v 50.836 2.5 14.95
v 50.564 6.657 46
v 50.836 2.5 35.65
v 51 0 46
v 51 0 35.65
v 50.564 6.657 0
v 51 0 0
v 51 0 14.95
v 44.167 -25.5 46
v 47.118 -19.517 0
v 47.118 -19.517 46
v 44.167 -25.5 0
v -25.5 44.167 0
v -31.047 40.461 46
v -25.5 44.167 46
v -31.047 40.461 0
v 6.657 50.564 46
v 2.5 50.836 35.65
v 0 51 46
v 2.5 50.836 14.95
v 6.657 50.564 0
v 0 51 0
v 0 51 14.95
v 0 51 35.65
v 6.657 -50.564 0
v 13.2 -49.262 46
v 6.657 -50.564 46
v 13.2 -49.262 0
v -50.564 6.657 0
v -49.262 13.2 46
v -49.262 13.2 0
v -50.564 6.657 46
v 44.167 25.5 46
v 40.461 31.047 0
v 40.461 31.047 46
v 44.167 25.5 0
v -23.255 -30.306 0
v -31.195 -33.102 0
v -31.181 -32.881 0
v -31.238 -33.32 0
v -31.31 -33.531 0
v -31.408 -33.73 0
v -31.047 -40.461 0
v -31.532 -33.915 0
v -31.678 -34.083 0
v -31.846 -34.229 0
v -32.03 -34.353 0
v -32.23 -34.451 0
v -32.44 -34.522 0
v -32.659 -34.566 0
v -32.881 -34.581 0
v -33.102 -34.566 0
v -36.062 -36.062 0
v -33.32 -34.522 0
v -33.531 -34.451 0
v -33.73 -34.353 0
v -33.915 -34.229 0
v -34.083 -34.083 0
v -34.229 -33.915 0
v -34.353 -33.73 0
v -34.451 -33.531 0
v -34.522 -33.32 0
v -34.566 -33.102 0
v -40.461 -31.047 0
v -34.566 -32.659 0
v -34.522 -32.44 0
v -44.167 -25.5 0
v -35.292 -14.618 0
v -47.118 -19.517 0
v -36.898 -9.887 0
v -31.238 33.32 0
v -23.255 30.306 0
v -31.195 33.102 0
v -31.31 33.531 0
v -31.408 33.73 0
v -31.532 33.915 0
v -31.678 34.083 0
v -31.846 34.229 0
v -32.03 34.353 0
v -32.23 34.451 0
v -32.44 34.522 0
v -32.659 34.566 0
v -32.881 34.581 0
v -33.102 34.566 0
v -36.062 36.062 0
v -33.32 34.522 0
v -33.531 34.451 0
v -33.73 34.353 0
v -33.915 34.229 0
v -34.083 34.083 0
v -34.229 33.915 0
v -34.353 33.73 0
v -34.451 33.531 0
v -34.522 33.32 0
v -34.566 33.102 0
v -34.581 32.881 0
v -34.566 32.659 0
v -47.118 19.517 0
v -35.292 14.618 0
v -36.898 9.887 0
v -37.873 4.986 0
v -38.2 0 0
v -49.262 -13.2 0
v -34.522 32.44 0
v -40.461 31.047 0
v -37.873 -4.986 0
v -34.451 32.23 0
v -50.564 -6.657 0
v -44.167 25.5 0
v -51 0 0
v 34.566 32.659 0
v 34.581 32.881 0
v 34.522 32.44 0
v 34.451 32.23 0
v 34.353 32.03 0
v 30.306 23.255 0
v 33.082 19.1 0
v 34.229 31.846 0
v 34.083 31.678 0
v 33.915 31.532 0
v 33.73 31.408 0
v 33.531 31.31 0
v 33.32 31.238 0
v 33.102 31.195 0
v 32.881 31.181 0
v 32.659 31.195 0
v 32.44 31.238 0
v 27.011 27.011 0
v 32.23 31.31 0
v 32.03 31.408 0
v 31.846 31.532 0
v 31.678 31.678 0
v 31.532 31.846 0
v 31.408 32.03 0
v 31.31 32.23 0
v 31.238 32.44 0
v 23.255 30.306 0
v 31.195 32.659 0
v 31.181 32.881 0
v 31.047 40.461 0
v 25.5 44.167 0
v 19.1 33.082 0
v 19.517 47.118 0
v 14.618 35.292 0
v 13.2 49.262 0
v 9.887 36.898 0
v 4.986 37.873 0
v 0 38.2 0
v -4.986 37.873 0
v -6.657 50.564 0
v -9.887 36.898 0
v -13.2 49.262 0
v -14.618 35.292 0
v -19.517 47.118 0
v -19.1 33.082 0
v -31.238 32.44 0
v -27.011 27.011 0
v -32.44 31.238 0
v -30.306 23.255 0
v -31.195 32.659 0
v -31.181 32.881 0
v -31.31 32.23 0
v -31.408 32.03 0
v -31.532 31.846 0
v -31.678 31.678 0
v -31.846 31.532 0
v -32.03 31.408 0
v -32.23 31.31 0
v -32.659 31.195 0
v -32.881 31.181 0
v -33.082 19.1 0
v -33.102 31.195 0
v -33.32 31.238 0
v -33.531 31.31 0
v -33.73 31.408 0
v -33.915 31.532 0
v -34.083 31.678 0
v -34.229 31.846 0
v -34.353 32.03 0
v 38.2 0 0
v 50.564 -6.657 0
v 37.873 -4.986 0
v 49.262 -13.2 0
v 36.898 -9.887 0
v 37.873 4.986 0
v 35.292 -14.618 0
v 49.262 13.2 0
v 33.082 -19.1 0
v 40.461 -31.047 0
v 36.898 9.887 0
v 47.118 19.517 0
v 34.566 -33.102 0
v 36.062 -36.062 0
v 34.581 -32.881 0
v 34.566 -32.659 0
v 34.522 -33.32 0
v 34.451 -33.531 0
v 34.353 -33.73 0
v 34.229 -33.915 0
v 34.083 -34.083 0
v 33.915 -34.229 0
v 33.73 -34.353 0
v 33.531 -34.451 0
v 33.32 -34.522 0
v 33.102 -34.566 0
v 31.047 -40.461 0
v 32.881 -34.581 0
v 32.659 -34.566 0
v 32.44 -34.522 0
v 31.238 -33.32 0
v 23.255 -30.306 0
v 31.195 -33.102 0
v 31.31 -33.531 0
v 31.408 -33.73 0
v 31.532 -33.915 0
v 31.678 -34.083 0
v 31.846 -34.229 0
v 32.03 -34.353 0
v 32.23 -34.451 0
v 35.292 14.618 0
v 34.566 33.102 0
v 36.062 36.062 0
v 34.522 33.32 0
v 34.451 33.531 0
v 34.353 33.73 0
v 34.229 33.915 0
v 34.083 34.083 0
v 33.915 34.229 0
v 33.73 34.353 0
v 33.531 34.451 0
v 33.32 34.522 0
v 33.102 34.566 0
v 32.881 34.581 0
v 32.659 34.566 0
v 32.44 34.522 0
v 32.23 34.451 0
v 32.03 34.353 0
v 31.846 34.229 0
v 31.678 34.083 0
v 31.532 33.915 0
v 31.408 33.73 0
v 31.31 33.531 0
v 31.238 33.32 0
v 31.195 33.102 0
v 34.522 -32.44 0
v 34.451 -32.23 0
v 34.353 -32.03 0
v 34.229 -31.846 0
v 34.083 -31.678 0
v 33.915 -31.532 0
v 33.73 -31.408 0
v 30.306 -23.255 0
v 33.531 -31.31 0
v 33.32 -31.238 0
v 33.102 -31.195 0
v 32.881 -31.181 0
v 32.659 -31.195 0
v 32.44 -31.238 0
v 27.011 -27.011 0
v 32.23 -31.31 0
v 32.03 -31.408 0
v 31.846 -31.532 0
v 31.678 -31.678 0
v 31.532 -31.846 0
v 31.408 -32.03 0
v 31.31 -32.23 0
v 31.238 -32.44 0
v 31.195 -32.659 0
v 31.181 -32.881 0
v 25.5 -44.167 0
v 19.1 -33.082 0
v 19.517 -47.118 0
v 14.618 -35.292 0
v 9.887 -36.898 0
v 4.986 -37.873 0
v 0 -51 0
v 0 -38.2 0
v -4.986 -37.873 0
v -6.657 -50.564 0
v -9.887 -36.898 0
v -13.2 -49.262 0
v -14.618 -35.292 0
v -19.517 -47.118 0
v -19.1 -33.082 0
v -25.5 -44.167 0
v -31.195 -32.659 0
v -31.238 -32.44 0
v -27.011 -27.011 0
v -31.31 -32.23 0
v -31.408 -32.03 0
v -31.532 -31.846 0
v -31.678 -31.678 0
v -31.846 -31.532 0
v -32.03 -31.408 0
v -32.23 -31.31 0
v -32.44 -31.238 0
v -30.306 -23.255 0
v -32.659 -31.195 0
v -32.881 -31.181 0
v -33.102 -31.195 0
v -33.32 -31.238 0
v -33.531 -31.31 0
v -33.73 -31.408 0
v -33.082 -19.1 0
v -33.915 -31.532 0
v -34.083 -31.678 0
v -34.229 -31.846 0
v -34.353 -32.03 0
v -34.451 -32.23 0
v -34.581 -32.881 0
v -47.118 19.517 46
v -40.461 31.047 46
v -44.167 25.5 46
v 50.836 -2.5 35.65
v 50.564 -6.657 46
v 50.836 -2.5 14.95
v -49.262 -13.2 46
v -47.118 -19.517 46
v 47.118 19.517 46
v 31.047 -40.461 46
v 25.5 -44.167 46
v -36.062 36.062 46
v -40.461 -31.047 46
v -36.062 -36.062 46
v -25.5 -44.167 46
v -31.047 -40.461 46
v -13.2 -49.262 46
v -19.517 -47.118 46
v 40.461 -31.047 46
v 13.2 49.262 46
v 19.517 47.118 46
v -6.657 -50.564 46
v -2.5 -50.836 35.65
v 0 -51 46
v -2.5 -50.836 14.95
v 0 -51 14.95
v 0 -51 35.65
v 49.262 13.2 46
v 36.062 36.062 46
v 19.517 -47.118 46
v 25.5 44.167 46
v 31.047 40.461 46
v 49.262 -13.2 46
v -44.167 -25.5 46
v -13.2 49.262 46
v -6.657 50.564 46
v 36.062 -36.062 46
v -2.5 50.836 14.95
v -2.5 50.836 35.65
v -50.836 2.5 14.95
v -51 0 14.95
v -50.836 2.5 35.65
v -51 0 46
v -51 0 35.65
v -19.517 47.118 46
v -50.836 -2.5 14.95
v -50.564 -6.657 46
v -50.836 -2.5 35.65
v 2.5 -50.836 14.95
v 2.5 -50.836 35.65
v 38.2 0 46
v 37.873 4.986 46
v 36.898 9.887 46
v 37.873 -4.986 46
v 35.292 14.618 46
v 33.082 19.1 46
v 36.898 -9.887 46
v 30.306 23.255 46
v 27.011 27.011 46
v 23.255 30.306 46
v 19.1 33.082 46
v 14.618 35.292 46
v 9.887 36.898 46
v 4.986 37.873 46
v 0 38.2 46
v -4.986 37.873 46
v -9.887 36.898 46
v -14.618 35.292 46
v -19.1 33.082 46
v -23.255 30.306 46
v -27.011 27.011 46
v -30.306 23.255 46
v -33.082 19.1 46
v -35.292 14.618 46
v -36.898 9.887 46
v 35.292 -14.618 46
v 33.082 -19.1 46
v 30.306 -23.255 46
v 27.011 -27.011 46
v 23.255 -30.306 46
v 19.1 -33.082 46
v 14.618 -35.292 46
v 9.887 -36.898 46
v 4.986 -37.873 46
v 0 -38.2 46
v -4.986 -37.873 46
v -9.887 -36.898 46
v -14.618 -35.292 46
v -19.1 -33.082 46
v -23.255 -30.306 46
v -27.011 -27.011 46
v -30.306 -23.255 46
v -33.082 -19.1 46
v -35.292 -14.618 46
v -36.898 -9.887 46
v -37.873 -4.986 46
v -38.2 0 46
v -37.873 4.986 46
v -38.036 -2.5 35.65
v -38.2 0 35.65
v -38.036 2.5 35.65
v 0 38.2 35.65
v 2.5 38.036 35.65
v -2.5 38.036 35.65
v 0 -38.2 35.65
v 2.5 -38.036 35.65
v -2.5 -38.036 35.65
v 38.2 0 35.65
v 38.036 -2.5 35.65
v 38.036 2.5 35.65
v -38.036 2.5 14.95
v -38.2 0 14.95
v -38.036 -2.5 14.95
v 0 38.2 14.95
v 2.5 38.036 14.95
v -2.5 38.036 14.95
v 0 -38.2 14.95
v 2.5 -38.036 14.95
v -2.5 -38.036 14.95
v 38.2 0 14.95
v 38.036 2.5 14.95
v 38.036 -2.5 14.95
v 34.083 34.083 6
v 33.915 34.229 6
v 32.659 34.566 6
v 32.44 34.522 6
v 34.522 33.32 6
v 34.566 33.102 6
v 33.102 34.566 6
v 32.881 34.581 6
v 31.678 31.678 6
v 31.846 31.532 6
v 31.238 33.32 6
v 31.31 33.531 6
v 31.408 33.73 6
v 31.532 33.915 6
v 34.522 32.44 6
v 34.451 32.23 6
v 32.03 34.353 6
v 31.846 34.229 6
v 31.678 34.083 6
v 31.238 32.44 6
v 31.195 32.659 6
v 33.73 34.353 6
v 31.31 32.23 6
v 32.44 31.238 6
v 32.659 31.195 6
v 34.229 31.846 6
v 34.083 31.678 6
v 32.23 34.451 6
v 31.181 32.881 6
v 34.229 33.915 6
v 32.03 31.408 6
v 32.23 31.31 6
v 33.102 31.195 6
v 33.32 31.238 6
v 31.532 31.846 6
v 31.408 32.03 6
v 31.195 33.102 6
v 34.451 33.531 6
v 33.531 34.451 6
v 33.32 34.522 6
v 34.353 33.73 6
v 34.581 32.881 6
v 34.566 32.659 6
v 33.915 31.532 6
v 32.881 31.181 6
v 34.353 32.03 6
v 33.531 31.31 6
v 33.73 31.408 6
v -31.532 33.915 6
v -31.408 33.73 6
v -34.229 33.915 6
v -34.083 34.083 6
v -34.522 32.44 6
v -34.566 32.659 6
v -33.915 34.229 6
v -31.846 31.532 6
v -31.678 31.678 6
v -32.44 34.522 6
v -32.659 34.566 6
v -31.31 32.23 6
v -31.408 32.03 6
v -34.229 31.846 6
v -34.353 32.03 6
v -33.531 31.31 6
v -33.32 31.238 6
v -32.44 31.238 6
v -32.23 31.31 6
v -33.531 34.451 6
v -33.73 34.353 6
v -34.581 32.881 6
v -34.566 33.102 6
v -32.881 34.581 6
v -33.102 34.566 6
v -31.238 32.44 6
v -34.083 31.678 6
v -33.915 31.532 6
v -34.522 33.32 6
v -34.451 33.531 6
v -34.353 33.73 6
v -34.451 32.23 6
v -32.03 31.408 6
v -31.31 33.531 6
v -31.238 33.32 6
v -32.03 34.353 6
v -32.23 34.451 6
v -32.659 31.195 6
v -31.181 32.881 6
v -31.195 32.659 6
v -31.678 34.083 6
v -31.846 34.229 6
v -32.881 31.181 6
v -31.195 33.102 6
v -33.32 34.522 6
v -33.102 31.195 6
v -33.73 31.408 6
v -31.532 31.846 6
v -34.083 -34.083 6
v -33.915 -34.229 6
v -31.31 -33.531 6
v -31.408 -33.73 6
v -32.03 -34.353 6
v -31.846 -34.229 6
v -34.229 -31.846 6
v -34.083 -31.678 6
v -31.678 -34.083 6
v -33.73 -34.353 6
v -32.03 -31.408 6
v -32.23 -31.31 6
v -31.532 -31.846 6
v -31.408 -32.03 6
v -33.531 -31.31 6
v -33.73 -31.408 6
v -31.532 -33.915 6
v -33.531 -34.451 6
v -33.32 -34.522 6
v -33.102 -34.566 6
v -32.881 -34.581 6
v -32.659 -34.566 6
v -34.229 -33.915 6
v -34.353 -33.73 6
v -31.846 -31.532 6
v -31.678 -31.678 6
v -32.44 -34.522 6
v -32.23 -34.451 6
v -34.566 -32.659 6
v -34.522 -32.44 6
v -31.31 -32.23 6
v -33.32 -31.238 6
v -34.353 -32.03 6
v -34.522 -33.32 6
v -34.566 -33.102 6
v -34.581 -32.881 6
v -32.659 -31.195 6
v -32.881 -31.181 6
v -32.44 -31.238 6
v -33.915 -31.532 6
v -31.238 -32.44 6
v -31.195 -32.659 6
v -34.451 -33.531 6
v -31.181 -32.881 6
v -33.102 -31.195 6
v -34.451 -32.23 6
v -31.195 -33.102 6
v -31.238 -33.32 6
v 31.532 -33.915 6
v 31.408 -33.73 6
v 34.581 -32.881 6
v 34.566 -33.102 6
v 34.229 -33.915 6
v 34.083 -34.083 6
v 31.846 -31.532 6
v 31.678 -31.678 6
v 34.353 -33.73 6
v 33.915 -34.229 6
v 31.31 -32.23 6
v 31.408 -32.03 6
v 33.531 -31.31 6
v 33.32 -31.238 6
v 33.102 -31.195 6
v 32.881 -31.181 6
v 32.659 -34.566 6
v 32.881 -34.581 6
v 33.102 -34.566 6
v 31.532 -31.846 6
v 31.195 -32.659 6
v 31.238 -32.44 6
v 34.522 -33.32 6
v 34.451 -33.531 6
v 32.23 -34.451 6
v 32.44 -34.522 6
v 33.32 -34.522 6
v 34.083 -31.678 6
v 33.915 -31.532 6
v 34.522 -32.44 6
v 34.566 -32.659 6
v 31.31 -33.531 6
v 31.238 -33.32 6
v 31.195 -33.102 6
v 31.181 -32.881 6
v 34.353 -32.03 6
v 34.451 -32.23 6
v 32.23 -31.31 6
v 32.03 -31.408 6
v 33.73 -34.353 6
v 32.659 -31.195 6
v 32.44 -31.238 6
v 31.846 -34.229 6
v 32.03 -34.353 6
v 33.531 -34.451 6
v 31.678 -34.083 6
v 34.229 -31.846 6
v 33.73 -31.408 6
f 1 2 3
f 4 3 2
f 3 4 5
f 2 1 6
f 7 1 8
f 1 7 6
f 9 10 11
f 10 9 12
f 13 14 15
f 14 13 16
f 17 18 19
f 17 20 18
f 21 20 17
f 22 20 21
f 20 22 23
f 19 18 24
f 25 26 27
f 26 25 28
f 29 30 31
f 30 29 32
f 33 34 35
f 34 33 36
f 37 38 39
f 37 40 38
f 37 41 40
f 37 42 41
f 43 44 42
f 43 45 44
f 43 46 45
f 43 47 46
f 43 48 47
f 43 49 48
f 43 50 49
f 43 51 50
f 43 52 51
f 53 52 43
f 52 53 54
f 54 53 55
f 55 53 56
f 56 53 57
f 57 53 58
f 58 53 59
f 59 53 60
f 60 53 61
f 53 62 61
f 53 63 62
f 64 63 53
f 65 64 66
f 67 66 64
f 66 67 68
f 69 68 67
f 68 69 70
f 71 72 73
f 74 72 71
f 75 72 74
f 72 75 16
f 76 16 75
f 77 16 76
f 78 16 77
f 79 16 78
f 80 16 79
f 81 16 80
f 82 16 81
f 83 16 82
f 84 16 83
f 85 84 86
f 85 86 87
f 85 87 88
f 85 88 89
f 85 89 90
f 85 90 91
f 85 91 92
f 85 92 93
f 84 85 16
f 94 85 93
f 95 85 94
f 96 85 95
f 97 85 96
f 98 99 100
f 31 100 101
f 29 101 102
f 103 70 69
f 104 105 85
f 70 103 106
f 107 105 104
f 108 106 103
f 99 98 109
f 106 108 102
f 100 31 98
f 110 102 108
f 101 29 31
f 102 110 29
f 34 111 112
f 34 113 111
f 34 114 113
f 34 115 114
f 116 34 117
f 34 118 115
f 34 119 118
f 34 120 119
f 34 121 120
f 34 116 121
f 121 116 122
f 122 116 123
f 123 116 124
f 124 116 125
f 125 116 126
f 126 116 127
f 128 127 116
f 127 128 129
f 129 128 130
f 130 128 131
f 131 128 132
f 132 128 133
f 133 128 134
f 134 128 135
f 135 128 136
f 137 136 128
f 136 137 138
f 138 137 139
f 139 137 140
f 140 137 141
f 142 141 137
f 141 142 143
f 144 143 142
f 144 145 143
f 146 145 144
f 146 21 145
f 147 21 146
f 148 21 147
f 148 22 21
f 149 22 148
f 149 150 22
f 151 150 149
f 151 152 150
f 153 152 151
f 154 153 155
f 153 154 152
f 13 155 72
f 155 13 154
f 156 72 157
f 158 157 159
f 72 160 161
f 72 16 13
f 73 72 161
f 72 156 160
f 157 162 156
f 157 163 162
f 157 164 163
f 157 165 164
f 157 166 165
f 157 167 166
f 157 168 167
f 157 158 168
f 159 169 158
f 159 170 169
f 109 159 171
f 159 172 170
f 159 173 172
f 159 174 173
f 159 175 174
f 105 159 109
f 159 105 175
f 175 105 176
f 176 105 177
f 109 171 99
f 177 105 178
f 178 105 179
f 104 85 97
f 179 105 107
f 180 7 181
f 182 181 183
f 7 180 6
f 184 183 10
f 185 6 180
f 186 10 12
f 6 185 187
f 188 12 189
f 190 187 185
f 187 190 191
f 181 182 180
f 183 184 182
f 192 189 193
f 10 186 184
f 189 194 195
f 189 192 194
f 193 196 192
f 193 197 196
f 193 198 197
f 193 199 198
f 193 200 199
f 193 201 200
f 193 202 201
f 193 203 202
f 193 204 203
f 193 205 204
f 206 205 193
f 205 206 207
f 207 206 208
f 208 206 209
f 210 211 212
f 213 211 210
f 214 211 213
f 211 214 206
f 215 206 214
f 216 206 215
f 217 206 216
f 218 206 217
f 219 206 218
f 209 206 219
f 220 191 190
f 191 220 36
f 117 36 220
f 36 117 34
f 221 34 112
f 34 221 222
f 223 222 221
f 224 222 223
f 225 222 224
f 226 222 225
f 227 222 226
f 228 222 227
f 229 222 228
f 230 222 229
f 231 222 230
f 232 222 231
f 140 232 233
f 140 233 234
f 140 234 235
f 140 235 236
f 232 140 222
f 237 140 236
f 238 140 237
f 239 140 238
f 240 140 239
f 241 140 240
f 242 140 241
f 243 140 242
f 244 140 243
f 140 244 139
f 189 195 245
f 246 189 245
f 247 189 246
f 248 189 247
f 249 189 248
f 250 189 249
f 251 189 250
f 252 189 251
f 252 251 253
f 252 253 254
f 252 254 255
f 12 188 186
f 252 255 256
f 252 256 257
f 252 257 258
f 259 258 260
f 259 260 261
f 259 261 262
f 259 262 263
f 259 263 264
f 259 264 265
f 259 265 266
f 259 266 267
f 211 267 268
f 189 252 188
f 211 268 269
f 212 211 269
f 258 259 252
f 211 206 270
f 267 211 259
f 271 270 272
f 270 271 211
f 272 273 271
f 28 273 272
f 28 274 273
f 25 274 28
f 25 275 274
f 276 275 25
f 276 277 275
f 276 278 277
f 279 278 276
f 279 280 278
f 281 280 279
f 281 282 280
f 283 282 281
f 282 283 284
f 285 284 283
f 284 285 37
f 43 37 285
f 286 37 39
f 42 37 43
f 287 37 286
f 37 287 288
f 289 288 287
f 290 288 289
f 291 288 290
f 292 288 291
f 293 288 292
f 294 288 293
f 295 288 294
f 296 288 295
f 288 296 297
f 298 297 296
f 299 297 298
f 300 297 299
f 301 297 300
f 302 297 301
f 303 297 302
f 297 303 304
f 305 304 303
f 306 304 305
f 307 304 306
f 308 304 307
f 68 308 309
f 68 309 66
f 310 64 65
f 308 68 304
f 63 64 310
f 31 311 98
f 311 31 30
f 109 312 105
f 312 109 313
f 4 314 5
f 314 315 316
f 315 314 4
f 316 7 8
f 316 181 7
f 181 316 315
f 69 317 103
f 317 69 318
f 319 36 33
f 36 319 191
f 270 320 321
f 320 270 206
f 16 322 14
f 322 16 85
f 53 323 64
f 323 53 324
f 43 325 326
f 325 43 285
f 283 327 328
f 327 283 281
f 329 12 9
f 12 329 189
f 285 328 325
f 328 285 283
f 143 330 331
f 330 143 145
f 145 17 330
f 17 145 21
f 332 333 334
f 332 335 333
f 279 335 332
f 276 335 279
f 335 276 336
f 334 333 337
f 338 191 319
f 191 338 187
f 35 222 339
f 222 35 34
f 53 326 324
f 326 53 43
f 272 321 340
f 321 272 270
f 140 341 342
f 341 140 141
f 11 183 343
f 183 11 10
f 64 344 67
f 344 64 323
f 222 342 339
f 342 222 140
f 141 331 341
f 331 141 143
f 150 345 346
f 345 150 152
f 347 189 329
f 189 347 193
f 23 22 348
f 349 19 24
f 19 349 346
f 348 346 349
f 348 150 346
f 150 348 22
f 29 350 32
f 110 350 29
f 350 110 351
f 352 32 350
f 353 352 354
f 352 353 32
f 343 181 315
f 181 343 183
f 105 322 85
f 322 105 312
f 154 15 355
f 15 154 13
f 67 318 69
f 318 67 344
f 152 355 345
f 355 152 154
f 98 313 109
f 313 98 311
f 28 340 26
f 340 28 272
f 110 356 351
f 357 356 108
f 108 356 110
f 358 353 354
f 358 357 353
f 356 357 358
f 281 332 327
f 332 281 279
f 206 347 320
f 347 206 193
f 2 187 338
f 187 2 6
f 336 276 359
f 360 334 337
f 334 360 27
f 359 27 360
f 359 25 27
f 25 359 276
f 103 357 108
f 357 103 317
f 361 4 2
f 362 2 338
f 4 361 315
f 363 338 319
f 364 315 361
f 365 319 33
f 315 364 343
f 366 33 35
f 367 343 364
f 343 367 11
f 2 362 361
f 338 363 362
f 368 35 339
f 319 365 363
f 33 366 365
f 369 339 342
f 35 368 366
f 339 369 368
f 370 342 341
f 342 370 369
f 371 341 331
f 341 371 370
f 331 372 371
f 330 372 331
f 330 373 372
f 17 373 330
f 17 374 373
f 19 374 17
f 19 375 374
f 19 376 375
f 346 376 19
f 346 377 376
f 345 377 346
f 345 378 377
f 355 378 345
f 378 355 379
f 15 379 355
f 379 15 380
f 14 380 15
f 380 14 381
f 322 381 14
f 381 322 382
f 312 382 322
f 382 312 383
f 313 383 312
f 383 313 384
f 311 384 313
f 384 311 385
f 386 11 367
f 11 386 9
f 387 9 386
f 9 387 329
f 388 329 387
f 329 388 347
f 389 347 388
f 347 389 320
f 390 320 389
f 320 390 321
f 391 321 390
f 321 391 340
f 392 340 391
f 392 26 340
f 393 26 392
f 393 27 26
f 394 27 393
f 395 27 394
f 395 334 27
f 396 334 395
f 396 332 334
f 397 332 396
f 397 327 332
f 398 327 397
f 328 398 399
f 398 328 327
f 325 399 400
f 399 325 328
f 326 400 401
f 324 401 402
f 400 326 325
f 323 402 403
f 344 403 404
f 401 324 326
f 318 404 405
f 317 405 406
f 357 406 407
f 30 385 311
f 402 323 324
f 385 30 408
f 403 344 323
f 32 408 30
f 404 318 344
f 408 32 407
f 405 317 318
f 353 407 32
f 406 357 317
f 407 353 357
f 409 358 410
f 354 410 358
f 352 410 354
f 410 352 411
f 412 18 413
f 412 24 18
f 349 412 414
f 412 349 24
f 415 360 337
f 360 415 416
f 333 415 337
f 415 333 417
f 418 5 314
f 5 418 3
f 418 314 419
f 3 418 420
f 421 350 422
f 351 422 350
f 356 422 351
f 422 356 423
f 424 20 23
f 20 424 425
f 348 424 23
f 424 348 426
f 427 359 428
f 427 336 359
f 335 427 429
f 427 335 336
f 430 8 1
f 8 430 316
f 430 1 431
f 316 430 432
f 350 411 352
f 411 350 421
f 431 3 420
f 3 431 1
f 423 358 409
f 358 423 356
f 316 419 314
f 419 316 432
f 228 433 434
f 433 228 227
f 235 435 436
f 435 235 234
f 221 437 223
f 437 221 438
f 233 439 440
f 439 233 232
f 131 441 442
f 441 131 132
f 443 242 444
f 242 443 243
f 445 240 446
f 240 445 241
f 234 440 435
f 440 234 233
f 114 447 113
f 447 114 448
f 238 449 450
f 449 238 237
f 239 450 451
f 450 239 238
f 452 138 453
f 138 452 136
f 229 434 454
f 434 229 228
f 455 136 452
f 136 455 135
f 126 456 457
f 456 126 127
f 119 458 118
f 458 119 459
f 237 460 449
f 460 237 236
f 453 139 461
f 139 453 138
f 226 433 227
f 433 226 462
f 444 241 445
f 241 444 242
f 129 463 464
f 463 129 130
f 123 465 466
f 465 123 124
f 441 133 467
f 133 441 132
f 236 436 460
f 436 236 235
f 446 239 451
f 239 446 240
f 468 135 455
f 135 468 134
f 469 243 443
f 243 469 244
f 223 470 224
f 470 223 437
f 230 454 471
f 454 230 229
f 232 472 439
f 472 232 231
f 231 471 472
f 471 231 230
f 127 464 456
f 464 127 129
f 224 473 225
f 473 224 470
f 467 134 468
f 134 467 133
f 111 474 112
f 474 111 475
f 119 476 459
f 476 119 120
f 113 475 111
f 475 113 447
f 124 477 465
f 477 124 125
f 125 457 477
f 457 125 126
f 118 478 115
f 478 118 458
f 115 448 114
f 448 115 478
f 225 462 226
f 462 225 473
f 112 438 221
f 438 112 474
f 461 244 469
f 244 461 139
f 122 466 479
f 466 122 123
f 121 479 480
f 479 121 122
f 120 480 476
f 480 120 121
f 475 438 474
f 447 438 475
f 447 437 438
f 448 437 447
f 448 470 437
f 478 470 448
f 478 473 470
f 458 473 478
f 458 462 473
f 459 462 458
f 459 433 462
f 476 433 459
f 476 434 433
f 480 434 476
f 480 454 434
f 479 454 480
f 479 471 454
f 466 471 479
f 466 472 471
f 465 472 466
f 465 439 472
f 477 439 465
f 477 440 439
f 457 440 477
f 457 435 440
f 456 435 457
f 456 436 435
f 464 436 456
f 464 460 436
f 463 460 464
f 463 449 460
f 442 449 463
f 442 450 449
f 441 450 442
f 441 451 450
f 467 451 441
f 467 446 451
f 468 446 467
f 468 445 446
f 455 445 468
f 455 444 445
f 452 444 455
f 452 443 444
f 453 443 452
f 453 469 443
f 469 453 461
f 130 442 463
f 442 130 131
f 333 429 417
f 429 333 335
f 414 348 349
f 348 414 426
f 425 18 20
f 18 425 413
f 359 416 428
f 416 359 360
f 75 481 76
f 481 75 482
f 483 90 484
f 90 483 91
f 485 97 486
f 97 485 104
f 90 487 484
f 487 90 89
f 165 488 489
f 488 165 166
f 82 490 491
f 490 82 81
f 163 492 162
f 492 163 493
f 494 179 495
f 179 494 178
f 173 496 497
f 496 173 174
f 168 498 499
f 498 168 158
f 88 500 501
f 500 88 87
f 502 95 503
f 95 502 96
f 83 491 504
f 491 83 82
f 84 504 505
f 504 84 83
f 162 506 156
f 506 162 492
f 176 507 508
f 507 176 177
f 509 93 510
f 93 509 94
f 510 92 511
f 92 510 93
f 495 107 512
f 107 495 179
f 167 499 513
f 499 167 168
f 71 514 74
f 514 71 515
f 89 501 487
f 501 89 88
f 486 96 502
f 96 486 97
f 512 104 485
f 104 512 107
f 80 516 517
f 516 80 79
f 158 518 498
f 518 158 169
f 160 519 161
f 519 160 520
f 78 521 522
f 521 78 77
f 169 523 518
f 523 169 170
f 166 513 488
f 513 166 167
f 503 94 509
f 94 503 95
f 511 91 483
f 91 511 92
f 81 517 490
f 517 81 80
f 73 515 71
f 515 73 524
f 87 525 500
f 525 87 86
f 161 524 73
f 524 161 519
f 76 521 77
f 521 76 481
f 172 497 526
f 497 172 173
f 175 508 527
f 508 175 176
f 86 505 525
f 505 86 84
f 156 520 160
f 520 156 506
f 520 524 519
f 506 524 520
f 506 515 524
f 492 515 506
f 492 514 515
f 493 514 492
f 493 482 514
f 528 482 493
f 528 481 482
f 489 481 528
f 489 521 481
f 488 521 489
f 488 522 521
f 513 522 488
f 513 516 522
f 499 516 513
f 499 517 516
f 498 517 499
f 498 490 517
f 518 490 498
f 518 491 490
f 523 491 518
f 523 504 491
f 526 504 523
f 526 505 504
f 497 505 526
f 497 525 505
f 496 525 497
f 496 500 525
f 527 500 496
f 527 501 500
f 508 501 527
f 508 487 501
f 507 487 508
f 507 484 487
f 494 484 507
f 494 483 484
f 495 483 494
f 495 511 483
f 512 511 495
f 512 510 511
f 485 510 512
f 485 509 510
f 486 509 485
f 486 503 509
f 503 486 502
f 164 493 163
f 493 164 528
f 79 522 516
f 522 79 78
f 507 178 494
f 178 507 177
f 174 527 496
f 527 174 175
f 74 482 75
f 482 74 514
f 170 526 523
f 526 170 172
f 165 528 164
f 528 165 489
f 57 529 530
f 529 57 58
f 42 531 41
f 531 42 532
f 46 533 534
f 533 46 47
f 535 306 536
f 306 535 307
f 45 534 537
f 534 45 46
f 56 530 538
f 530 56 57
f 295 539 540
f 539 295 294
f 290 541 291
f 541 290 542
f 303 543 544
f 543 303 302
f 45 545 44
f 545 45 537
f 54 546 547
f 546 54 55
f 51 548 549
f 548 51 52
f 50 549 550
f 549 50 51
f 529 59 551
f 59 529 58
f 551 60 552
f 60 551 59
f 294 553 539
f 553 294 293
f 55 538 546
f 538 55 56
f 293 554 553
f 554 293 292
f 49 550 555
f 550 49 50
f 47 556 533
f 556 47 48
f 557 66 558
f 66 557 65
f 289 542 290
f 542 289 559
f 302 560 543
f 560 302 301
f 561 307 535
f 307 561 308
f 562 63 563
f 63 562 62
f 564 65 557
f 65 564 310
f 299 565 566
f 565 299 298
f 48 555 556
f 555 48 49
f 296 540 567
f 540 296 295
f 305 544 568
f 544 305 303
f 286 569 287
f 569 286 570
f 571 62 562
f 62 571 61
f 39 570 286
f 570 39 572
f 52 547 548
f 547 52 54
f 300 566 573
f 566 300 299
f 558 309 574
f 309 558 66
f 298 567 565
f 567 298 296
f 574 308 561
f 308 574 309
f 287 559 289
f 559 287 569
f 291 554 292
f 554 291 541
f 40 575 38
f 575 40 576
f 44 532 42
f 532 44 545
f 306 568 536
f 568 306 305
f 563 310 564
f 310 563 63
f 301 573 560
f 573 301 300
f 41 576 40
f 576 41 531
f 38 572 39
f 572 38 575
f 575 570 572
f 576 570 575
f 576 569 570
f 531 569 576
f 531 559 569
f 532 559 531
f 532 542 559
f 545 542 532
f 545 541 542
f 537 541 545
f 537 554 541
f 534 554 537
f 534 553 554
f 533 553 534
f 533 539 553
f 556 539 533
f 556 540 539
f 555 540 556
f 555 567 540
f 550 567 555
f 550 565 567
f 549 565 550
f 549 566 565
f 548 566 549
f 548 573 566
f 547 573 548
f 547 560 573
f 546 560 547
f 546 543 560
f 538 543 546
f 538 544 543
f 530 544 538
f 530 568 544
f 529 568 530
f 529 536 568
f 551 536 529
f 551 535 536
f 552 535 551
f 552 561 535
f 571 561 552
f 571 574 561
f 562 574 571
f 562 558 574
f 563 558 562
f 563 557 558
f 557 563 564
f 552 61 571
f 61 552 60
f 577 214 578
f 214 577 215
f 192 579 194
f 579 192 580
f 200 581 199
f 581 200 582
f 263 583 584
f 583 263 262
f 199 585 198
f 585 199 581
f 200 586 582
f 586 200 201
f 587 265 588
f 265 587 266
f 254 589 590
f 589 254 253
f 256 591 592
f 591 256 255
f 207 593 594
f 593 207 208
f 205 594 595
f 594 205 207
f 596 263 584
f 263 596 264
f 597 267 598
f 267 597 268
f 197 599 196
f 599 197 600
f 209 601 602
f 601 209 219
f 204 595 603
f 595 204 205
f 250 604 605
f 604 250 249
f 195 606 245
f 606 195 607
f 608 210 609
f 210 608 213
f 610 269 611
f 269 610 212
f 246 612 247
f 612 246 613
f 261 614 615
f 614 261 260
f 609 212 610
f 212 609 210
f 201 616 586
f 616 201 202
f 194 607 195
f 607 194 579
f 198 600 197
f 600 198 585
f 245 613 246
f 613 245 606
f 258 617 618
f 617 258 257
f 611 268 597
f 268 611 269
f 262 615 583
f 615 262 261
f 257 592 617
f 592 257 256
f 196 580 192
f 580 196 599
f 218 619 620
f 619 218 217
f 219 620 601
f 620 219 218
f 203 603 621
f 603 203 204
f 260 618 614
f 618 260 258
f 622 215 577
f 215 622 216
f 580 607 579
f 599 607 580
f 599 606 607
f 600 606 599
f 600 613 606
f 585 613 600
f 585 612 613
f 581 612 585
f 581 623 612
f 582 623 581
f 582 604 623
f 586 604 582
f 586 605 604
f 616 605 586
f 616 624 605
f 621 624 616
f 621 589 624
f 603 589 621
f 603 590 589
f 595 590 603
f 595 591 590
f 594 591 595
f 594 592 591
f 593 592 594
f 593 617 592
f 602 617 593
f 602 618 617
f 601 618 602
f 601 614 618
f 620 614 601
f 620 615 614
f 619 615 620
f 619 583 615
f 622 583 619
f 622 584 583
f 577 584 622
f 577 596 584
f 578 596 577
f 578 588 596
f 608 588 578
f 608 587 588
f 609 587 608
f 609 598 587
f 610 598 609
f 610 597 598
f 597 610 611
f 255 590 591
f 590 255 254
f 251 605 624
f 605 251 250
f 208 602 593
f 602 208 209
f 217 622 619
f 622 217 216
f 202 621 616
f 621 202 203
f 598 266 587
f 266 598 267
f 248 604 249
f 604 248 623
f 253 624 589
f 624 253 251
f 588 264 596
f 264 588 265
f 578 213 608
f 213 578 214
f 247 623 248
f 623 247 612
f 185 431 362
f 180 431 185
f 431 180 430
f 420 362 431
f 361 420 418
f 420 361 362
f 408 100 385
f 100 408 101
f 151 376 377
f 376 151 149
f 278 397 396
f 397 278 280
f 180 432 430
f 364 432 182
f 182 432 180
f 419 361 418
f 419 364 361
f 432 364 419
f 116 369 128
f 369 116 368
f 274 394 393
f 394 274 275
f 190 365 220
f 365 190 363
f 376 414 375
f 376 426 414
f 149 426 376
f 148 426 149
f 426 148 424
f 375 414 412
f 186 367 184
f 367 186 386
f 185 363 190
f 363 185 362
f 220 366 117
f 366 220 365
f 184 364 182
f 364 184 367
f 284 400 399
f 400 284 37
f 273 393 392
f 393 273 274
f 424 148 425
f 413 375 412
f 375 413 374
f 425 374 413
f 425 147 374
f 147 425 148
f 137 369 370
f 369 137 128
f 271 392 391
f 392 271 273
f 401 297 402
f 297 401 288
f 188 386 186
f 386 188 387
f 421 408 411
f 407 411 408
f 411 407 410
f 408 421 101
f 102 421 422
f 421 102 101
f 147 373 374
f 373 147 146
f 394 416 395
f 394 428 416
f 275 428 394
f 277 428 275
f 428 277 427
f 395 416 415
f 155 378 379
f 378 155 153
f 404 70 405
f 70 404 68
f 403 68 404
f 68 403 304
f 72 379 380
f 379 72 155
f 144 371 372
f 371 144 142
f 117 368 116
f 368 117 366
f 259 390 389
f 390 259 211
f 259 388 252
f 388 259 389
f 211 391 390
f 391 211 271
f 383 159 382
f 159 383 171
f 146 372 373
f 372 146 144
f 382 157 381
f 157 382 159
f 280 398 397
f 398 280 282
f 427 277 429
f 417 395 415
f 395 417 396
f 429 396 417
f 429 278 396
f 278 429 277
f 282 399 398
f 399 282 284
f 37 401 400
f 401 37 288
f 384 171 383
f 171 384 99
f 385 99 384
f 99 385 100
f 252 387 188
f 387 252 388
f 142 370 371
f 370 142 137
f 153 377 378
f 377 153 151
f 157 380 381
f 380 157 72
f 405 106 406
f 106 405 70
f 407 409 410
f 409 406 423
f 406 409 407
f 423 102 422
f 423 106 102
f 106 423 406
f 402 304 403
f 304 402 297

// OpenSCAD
// ============================================================================
// Get Me An Alt — Parametric OpenSCAD Module
// Part: PRT-05 — Axis-2 Rotary Pan Turntable Housing & 6808 Bearing Seat (pan-turntable-housing)
// Function: Supports and drives 360° continuous horizontal camera panning.
// Target Bounding Box (mm): [102, 102, 46]
// Print Material: PLA+ | Min Wall: >= 1.6mm | Tolerance: 0.2mm
// ============================================================================
$fn = 48;
part_width = 102;
part_depth = 102;
part_height = 46;
wall_thickness = 3.5;
floor_thickness = 3.5;
corner_radius = 4;
tolerance = 0.2;
m3_clearance_d = 3.4; // M3 screw clearance hole (3.0mm + 2*0.2mm)

module rounded_rect_prism(w, d, h, r) {
  cr = max(0.5, min(r, min(w, d) / 2 - 0.1));
  linear_extrude(height = h)
    offset(r = cr)
      offset(r = -cr)
        square([w, d], center = true);
}

module part_pan_turntable_housing() {
  difference() {
    union() {
      // Base mounting flange
      cylinder(h = 5, r = 51);
      // Cylindrical isolation collar
      cylinder(h = part_height, r = 51);
    }
    // Central bore with 0.2mm fit tolerance
    translate([0, 0, -1])
      cylinder(h = part_height + 2, r = 38 + tolerance);
    // Side water intake relief slots
    for (ang = [0, 90, 180, 270]) {
      rotate([0, 0, ang])
        translate([0, 0, part_height * 0.55])
          cube([112.2, 5.0, part_height * 0.45], center = true);
      // Flange M3 anchor holes
      rotate([0, 0, ang + 45])
        translate([46.5, 0, -1])
          cylinder(h = 7, d = m3_clearance_d);
    }
  }
}

part_pan_turntable_housing();
